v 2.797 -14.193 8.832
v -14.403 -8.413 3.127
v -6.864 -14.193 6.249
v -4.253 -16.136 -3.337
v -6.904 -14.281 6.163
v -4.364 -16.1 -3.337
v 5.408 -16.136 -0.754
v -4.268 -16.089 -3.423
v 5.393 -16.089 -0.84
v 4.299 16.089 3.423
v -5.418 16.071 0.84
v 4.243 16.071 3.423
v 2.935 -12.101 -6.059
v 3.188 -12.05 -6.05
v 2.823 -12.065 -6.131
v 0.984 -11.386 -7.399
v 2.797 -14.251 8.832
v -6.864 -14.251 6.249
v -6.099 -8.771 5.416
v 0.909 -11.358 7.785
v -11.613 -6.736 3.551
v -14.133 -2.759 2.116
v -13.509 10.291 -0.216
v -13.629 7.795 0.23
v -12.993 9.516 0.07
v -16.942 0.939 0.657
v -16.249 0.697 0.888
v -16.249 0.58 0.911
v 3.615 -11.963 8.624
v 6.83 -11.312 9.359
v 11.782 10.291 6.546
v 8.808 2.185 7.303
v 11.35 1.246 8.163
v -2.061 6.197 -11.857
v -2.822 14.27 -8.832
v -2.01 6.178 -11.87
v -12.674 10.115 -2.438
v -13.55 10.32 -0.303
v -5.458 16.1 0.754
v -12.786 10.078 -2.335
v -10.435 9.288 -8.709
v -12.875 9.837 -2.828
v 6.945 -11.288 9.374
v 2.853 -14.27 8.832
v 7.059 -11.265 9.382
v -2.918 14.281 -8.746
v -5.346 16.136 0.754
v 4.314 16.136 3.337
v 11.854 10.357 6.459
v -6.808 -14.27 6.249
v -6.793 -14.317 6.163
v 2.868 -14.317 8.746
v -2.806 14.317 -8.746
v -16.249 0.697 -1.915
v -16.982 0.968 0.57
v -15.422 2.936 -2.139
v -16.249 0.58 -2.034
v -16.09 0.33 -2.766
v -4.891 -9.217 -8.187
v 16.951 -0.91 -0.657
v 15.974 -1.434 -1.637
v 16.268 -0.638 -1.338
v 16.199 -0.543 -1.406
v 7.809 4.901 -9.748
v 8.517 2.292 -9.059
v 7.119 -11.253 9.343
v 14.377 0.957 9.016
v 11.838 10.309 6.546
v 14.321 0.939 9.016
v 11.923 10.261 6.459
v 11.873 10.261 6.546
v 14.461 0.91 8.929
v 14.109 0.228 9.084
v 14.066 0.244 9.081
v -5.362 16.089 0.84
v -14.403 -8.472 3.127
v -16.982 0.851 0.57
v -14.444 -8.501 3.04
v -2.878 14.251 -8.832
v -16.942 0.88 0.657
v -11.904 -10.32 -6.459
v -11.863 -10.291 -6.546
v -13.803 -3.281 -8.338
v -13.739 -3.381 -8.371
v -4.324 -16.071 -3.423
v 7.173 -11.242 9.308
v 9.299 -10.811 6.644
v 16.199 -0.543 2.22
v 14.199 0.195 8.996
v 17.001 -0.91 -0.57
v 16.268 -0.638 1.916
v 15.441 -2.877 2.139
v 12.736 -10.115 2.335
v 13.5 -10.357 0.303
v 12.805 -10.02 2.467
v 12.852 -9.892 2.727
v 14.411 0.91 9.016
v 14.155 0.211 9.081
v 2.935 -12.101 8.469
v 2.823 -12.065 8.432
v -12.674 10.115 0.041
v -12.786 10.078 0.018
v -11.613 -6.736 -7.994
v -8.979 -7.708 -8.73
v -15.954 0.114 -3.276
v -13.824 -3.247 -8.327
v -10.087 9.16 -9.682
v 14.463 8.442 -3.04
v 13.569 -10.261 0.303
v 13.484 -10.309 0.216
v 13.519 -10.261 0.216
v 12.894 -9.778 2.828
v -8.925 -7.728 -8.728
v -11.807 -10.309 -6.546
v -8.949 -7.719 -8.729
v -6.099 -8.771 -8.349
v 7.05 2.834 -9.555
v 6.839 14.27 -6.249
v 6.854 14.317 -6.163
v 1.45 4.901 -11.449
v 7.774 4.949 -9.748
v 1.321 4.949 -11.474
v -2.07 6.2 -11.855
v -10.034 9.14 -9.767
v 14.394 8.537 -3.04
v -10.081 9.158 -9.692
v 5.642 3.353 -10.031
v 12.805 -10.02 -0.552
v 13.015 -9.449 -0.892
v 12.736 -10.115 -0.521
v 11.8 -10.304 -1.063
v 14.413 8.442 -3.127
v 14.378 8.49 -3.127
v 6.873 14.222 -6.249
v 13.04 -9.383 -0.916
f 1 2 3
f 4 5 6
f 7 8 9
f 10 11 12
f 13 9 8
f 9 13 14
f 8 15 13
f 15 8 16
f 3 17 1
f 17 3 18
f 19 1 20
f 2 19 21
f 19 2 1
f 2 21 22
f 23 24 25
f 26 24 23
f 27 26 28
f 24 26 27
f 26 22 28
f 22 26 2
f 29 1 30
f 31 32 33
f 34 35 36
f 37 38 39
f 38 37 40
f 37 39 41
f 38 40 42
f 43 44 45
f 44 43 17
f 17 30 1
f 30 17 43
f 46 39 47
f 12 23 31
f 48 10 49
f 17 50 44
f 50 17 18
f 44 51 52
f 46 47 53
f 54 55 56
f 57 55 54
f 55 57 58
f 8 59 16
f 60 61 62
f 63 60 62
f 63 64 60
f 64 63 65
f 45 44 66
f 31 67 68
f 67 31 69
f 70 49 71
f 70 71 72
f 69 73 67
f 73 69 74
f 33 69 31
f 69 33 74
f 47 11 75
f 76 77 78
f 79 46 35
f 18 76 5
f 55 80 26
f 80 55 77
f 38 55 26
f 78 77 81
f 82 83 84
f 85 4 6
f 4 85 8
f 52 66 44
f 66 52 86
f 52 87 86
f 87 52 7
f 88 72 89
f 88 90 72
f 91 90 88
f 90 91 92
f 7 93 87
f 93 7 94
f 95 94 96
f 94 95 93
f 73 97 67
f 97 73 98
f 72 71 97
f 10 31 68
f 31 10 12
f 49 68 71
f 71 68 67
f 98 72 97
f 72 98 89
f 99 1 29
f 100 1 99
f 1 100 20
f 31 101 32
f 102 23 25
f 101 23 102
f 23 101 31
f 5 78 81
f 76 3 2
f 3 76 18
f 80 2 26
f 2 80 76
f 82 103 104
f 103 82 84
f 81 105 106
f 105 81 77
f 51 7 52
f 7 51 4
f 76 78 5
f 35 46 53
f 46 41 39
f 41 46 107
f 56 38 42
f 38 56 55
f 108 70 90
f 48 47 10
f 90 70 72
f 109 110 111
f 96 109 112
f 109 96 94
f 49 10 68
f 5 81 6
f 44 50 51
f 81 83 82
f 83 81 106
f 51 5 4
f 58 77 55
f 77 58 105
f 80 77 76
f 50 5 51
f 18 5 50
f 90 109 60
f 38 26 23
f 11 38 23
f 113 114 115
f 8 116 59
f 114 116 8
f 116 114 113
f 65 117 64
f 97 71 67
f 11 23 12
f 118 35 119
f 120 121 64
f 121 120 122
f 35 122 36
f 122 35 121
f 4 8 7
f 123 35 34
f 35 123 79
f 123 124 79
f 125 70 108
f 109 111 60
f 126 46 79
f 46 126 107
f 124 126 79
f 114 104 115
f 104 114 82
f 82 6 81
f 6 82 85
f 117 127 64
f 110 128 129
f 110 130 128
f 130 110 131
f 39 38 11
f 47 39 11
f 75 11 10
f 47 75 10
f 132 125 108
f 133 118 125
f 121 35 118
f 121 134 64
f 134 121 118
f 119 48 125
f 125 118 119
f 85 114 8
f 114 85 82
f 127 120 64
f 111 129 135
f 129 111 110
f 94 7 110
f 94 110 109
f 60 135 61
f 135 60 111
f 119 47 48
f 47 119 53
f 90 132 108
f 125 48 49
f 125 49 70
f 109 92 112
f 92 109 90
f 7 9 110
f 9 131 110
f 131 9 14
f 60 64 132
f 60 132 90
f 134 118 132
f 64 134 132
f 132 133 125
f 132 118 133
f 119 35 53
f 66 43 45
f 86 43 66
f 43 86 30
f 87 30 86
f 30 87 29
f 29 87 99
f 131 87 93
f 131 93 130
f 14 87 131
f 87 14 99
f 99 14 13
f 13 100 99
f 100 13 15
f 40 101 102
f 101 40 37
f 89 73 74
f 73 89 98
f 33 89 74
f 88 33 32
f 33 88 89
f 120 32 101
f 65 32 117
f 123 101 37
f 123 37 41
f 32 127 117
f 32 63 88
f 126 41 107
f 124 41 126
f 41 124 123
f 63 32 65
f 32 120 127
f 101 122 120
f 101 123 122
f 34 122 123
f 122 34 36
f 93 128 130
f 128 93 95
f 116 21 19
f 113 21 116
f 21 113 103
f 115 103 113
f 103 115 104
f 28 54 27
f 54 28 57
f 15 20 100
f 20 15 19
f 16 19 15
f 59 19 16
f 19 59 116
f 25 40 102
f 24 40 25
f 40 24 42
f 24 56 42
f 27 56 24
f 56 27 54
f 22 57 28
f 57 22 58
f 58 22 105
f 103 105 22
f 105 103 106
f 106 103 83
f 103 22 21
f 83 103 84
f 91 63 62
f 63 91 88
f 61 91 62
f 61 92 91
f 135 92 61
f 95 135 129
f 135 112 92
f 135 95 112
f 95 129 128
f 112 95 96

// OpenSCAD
// Auto-generated OpenSCAD file

    inner_points = 10*[[-1.6167766456007826, 0.06384352681284394, 0.5000000000001501], [-1.2704727596155507, 1.001965916776716, 0.5000000000009248], [1.2704671898464706, -1.0019702419428729, -0.5000000000009248], [1.6167710758317024, -0.06384785197900072, -0.5000000000001501], [-1.616776645600842, 0.06384352681369176, -0.4999999999998499], [-1.27047275961561, 1.0019659167775639, -0.4999999999990751], [-1.0653621399346023, -0.13970879018153537, 1.309016994374892], [-0.7190582539493701, 0.7984135997823368, 1.3090169943756669], [0.7190526841802901, -0.7984179249484936, -1.3090169943756669], [1.065356570165522, 0.1397044650153786, -1.309016994374892], [1.2704671898465298, -1.0019702419437206, 0.4999999999990751], [1.616771075831762, -0.06384785197984855, 0.4999999999998499], [-1.0653621399347575, -0.13970879017931587, -1.3090169943750025], [-0.7190582539495255, 0.7984135997845563, -1.309016994374228], [-0.17315472787705996, -0.4690633575663862, 1.6180339887495077], [0.17314915810817202, 0.469059032397486, 1.6180339887502821], [-0.17315472787725203, -0.46906335756364276, -1.6180339887502821], [0.17314915810797996, 0.4690590324002294, -1.6180339887495077], [0.7190526841804455, -0.7984179249507131, 1.309016994374228], [1.0653565701656773, 0.13970446501315908, 1.3090169943750025], [-1.1532320243432654, -0.6676798043957903, -4.976019596369952e-13], [0.2903898933803613, -1.2005866887736487, -0.5000000000010351], [-0.6018175186770848, -0.8712321213901697, 0.8090169943742446], [0.29038989338042065, -1.2005866887744965, 0.49999999999896494], [-0.6018175186771807, -0.8712321213887979, -0.8090169943756502]];

    outer_points = 10*[[1.6901206881155384, -0.09096313382919773, -0.05702417590571207], [1.4361259474809793, 0.09096313382919773, 0.8929176669804033], [-1.4361259474809793, -0.09096313382919773, -0.8929176669804033], [-1.6901206881155384, 0.09096313382919773, 0.05702417590571207], [1.3468981581679096, -1.0261485852376606, 0.03030546631443143], [1.0929034175333503, -0.8442223175792652, 0.9802473092005468], [1.4362832392717357, 0.8442223175792652, -0.30399526943371824], [1.1822884986371764, 1.0261485852376606, 0.6459465734523971], [-1.1822884986371764, -1.0261485852376606, -0.6459465734523971], [-1.4362832392717357, -0.8442223175792652, 0.30399526943371824], [-1.0929034175333503, 0.8442223175792652, -0.9802473092005468], [-1.3468981581679096, 1.0261485852376606, -0.03030546631443143], [0.5377149901641148, -1.6041249799925041, -0.07536329787601459], [0.2837202495295557, -1.4221987123341089, 0.8745785450101007], [0.6823430894772717, 1.4221987123341089, -0.6162732507806177], [0.4283483488427125, 1.6041249799925041, 0.3336685921054976], [-0.4283483488427125, -1.6041249799925041, -0.3336685921054976], [-0.6823430894772717, -1.4221987123341089, 0.6162732507806177], [-0.2837202495295557, 1.4221987123341089, -0.8745785450101007], [-0.5377149901641148, 1.6041249799925041, 0.07536329787601459], [1.0297392522827944, -0.4450863344613457, -0.719212304749417], [-0.5333840655154644, -0.4450863344613457, -1.1371590502867626], [0.775901803438992, 0.49009911694711733, -0.9661833982774231], [-0.1901615355678355, 0.49009911694711733, -1.224488692506906], [0.2205560842789998, -1.0230627292161891, -0.824881068939863]];

    // Convex hull for inner set (I)
    module inner_hull() {
        hull() {
            for (p = inner_points) {
                translate(p) sphere(r=0.1);
            }
        }
    }

    // Convex hull for outer set (O) minus inner hull (O \ I)
    module outer_minus_inner() {
        difference() {
            hull() {
                for (p = outer_points) {
                    translate(p) sphere(r=0.1);
                }
            }
            inner_hull(); // Subtract inner hull
        }
    }

    // Convex hull for outer set (O) minus all translated inner hulls
    module outer_minus_AllTranslationInner() {
        difference() {
            hull() {
                for (p = outer_points) {
                    translate(p) sphere(r=0.1);
                }
            }
            hull() {
                translate([0,0,50]) inner_hull();
                translate([0,0,-50]) inner_hull();
            }; // Subtract translated inner hulls
        }
    }

    // Difference between outer_minus_inner and outer_minus_AllTranslationInner
    module outer_minus_inner_diff() {
        difference() {
            // Outer minus inner
            difference() {
                hull() {
                    for (p = outer_points) {
                        translate(p) sphere(r=0.1);
                    }
                }
                inner_hull();
            }

            // Subtract Outer minus AllTranslationInner
            difference() {
                hull() {
                    for (p = outer_points) {
                        translate(p) sphere(r=0.1);
                    }
                }
                hull() {
                    translate([0,0,50]) inner_hull();
                    translate([0,0,-50]) inner_hull();
                };
            }
        }
    }

    // Rendering all with colors applied
    color([0, 1, 0, 1]) outer_minus_AllTranslationInner(); // Opaque green
    
